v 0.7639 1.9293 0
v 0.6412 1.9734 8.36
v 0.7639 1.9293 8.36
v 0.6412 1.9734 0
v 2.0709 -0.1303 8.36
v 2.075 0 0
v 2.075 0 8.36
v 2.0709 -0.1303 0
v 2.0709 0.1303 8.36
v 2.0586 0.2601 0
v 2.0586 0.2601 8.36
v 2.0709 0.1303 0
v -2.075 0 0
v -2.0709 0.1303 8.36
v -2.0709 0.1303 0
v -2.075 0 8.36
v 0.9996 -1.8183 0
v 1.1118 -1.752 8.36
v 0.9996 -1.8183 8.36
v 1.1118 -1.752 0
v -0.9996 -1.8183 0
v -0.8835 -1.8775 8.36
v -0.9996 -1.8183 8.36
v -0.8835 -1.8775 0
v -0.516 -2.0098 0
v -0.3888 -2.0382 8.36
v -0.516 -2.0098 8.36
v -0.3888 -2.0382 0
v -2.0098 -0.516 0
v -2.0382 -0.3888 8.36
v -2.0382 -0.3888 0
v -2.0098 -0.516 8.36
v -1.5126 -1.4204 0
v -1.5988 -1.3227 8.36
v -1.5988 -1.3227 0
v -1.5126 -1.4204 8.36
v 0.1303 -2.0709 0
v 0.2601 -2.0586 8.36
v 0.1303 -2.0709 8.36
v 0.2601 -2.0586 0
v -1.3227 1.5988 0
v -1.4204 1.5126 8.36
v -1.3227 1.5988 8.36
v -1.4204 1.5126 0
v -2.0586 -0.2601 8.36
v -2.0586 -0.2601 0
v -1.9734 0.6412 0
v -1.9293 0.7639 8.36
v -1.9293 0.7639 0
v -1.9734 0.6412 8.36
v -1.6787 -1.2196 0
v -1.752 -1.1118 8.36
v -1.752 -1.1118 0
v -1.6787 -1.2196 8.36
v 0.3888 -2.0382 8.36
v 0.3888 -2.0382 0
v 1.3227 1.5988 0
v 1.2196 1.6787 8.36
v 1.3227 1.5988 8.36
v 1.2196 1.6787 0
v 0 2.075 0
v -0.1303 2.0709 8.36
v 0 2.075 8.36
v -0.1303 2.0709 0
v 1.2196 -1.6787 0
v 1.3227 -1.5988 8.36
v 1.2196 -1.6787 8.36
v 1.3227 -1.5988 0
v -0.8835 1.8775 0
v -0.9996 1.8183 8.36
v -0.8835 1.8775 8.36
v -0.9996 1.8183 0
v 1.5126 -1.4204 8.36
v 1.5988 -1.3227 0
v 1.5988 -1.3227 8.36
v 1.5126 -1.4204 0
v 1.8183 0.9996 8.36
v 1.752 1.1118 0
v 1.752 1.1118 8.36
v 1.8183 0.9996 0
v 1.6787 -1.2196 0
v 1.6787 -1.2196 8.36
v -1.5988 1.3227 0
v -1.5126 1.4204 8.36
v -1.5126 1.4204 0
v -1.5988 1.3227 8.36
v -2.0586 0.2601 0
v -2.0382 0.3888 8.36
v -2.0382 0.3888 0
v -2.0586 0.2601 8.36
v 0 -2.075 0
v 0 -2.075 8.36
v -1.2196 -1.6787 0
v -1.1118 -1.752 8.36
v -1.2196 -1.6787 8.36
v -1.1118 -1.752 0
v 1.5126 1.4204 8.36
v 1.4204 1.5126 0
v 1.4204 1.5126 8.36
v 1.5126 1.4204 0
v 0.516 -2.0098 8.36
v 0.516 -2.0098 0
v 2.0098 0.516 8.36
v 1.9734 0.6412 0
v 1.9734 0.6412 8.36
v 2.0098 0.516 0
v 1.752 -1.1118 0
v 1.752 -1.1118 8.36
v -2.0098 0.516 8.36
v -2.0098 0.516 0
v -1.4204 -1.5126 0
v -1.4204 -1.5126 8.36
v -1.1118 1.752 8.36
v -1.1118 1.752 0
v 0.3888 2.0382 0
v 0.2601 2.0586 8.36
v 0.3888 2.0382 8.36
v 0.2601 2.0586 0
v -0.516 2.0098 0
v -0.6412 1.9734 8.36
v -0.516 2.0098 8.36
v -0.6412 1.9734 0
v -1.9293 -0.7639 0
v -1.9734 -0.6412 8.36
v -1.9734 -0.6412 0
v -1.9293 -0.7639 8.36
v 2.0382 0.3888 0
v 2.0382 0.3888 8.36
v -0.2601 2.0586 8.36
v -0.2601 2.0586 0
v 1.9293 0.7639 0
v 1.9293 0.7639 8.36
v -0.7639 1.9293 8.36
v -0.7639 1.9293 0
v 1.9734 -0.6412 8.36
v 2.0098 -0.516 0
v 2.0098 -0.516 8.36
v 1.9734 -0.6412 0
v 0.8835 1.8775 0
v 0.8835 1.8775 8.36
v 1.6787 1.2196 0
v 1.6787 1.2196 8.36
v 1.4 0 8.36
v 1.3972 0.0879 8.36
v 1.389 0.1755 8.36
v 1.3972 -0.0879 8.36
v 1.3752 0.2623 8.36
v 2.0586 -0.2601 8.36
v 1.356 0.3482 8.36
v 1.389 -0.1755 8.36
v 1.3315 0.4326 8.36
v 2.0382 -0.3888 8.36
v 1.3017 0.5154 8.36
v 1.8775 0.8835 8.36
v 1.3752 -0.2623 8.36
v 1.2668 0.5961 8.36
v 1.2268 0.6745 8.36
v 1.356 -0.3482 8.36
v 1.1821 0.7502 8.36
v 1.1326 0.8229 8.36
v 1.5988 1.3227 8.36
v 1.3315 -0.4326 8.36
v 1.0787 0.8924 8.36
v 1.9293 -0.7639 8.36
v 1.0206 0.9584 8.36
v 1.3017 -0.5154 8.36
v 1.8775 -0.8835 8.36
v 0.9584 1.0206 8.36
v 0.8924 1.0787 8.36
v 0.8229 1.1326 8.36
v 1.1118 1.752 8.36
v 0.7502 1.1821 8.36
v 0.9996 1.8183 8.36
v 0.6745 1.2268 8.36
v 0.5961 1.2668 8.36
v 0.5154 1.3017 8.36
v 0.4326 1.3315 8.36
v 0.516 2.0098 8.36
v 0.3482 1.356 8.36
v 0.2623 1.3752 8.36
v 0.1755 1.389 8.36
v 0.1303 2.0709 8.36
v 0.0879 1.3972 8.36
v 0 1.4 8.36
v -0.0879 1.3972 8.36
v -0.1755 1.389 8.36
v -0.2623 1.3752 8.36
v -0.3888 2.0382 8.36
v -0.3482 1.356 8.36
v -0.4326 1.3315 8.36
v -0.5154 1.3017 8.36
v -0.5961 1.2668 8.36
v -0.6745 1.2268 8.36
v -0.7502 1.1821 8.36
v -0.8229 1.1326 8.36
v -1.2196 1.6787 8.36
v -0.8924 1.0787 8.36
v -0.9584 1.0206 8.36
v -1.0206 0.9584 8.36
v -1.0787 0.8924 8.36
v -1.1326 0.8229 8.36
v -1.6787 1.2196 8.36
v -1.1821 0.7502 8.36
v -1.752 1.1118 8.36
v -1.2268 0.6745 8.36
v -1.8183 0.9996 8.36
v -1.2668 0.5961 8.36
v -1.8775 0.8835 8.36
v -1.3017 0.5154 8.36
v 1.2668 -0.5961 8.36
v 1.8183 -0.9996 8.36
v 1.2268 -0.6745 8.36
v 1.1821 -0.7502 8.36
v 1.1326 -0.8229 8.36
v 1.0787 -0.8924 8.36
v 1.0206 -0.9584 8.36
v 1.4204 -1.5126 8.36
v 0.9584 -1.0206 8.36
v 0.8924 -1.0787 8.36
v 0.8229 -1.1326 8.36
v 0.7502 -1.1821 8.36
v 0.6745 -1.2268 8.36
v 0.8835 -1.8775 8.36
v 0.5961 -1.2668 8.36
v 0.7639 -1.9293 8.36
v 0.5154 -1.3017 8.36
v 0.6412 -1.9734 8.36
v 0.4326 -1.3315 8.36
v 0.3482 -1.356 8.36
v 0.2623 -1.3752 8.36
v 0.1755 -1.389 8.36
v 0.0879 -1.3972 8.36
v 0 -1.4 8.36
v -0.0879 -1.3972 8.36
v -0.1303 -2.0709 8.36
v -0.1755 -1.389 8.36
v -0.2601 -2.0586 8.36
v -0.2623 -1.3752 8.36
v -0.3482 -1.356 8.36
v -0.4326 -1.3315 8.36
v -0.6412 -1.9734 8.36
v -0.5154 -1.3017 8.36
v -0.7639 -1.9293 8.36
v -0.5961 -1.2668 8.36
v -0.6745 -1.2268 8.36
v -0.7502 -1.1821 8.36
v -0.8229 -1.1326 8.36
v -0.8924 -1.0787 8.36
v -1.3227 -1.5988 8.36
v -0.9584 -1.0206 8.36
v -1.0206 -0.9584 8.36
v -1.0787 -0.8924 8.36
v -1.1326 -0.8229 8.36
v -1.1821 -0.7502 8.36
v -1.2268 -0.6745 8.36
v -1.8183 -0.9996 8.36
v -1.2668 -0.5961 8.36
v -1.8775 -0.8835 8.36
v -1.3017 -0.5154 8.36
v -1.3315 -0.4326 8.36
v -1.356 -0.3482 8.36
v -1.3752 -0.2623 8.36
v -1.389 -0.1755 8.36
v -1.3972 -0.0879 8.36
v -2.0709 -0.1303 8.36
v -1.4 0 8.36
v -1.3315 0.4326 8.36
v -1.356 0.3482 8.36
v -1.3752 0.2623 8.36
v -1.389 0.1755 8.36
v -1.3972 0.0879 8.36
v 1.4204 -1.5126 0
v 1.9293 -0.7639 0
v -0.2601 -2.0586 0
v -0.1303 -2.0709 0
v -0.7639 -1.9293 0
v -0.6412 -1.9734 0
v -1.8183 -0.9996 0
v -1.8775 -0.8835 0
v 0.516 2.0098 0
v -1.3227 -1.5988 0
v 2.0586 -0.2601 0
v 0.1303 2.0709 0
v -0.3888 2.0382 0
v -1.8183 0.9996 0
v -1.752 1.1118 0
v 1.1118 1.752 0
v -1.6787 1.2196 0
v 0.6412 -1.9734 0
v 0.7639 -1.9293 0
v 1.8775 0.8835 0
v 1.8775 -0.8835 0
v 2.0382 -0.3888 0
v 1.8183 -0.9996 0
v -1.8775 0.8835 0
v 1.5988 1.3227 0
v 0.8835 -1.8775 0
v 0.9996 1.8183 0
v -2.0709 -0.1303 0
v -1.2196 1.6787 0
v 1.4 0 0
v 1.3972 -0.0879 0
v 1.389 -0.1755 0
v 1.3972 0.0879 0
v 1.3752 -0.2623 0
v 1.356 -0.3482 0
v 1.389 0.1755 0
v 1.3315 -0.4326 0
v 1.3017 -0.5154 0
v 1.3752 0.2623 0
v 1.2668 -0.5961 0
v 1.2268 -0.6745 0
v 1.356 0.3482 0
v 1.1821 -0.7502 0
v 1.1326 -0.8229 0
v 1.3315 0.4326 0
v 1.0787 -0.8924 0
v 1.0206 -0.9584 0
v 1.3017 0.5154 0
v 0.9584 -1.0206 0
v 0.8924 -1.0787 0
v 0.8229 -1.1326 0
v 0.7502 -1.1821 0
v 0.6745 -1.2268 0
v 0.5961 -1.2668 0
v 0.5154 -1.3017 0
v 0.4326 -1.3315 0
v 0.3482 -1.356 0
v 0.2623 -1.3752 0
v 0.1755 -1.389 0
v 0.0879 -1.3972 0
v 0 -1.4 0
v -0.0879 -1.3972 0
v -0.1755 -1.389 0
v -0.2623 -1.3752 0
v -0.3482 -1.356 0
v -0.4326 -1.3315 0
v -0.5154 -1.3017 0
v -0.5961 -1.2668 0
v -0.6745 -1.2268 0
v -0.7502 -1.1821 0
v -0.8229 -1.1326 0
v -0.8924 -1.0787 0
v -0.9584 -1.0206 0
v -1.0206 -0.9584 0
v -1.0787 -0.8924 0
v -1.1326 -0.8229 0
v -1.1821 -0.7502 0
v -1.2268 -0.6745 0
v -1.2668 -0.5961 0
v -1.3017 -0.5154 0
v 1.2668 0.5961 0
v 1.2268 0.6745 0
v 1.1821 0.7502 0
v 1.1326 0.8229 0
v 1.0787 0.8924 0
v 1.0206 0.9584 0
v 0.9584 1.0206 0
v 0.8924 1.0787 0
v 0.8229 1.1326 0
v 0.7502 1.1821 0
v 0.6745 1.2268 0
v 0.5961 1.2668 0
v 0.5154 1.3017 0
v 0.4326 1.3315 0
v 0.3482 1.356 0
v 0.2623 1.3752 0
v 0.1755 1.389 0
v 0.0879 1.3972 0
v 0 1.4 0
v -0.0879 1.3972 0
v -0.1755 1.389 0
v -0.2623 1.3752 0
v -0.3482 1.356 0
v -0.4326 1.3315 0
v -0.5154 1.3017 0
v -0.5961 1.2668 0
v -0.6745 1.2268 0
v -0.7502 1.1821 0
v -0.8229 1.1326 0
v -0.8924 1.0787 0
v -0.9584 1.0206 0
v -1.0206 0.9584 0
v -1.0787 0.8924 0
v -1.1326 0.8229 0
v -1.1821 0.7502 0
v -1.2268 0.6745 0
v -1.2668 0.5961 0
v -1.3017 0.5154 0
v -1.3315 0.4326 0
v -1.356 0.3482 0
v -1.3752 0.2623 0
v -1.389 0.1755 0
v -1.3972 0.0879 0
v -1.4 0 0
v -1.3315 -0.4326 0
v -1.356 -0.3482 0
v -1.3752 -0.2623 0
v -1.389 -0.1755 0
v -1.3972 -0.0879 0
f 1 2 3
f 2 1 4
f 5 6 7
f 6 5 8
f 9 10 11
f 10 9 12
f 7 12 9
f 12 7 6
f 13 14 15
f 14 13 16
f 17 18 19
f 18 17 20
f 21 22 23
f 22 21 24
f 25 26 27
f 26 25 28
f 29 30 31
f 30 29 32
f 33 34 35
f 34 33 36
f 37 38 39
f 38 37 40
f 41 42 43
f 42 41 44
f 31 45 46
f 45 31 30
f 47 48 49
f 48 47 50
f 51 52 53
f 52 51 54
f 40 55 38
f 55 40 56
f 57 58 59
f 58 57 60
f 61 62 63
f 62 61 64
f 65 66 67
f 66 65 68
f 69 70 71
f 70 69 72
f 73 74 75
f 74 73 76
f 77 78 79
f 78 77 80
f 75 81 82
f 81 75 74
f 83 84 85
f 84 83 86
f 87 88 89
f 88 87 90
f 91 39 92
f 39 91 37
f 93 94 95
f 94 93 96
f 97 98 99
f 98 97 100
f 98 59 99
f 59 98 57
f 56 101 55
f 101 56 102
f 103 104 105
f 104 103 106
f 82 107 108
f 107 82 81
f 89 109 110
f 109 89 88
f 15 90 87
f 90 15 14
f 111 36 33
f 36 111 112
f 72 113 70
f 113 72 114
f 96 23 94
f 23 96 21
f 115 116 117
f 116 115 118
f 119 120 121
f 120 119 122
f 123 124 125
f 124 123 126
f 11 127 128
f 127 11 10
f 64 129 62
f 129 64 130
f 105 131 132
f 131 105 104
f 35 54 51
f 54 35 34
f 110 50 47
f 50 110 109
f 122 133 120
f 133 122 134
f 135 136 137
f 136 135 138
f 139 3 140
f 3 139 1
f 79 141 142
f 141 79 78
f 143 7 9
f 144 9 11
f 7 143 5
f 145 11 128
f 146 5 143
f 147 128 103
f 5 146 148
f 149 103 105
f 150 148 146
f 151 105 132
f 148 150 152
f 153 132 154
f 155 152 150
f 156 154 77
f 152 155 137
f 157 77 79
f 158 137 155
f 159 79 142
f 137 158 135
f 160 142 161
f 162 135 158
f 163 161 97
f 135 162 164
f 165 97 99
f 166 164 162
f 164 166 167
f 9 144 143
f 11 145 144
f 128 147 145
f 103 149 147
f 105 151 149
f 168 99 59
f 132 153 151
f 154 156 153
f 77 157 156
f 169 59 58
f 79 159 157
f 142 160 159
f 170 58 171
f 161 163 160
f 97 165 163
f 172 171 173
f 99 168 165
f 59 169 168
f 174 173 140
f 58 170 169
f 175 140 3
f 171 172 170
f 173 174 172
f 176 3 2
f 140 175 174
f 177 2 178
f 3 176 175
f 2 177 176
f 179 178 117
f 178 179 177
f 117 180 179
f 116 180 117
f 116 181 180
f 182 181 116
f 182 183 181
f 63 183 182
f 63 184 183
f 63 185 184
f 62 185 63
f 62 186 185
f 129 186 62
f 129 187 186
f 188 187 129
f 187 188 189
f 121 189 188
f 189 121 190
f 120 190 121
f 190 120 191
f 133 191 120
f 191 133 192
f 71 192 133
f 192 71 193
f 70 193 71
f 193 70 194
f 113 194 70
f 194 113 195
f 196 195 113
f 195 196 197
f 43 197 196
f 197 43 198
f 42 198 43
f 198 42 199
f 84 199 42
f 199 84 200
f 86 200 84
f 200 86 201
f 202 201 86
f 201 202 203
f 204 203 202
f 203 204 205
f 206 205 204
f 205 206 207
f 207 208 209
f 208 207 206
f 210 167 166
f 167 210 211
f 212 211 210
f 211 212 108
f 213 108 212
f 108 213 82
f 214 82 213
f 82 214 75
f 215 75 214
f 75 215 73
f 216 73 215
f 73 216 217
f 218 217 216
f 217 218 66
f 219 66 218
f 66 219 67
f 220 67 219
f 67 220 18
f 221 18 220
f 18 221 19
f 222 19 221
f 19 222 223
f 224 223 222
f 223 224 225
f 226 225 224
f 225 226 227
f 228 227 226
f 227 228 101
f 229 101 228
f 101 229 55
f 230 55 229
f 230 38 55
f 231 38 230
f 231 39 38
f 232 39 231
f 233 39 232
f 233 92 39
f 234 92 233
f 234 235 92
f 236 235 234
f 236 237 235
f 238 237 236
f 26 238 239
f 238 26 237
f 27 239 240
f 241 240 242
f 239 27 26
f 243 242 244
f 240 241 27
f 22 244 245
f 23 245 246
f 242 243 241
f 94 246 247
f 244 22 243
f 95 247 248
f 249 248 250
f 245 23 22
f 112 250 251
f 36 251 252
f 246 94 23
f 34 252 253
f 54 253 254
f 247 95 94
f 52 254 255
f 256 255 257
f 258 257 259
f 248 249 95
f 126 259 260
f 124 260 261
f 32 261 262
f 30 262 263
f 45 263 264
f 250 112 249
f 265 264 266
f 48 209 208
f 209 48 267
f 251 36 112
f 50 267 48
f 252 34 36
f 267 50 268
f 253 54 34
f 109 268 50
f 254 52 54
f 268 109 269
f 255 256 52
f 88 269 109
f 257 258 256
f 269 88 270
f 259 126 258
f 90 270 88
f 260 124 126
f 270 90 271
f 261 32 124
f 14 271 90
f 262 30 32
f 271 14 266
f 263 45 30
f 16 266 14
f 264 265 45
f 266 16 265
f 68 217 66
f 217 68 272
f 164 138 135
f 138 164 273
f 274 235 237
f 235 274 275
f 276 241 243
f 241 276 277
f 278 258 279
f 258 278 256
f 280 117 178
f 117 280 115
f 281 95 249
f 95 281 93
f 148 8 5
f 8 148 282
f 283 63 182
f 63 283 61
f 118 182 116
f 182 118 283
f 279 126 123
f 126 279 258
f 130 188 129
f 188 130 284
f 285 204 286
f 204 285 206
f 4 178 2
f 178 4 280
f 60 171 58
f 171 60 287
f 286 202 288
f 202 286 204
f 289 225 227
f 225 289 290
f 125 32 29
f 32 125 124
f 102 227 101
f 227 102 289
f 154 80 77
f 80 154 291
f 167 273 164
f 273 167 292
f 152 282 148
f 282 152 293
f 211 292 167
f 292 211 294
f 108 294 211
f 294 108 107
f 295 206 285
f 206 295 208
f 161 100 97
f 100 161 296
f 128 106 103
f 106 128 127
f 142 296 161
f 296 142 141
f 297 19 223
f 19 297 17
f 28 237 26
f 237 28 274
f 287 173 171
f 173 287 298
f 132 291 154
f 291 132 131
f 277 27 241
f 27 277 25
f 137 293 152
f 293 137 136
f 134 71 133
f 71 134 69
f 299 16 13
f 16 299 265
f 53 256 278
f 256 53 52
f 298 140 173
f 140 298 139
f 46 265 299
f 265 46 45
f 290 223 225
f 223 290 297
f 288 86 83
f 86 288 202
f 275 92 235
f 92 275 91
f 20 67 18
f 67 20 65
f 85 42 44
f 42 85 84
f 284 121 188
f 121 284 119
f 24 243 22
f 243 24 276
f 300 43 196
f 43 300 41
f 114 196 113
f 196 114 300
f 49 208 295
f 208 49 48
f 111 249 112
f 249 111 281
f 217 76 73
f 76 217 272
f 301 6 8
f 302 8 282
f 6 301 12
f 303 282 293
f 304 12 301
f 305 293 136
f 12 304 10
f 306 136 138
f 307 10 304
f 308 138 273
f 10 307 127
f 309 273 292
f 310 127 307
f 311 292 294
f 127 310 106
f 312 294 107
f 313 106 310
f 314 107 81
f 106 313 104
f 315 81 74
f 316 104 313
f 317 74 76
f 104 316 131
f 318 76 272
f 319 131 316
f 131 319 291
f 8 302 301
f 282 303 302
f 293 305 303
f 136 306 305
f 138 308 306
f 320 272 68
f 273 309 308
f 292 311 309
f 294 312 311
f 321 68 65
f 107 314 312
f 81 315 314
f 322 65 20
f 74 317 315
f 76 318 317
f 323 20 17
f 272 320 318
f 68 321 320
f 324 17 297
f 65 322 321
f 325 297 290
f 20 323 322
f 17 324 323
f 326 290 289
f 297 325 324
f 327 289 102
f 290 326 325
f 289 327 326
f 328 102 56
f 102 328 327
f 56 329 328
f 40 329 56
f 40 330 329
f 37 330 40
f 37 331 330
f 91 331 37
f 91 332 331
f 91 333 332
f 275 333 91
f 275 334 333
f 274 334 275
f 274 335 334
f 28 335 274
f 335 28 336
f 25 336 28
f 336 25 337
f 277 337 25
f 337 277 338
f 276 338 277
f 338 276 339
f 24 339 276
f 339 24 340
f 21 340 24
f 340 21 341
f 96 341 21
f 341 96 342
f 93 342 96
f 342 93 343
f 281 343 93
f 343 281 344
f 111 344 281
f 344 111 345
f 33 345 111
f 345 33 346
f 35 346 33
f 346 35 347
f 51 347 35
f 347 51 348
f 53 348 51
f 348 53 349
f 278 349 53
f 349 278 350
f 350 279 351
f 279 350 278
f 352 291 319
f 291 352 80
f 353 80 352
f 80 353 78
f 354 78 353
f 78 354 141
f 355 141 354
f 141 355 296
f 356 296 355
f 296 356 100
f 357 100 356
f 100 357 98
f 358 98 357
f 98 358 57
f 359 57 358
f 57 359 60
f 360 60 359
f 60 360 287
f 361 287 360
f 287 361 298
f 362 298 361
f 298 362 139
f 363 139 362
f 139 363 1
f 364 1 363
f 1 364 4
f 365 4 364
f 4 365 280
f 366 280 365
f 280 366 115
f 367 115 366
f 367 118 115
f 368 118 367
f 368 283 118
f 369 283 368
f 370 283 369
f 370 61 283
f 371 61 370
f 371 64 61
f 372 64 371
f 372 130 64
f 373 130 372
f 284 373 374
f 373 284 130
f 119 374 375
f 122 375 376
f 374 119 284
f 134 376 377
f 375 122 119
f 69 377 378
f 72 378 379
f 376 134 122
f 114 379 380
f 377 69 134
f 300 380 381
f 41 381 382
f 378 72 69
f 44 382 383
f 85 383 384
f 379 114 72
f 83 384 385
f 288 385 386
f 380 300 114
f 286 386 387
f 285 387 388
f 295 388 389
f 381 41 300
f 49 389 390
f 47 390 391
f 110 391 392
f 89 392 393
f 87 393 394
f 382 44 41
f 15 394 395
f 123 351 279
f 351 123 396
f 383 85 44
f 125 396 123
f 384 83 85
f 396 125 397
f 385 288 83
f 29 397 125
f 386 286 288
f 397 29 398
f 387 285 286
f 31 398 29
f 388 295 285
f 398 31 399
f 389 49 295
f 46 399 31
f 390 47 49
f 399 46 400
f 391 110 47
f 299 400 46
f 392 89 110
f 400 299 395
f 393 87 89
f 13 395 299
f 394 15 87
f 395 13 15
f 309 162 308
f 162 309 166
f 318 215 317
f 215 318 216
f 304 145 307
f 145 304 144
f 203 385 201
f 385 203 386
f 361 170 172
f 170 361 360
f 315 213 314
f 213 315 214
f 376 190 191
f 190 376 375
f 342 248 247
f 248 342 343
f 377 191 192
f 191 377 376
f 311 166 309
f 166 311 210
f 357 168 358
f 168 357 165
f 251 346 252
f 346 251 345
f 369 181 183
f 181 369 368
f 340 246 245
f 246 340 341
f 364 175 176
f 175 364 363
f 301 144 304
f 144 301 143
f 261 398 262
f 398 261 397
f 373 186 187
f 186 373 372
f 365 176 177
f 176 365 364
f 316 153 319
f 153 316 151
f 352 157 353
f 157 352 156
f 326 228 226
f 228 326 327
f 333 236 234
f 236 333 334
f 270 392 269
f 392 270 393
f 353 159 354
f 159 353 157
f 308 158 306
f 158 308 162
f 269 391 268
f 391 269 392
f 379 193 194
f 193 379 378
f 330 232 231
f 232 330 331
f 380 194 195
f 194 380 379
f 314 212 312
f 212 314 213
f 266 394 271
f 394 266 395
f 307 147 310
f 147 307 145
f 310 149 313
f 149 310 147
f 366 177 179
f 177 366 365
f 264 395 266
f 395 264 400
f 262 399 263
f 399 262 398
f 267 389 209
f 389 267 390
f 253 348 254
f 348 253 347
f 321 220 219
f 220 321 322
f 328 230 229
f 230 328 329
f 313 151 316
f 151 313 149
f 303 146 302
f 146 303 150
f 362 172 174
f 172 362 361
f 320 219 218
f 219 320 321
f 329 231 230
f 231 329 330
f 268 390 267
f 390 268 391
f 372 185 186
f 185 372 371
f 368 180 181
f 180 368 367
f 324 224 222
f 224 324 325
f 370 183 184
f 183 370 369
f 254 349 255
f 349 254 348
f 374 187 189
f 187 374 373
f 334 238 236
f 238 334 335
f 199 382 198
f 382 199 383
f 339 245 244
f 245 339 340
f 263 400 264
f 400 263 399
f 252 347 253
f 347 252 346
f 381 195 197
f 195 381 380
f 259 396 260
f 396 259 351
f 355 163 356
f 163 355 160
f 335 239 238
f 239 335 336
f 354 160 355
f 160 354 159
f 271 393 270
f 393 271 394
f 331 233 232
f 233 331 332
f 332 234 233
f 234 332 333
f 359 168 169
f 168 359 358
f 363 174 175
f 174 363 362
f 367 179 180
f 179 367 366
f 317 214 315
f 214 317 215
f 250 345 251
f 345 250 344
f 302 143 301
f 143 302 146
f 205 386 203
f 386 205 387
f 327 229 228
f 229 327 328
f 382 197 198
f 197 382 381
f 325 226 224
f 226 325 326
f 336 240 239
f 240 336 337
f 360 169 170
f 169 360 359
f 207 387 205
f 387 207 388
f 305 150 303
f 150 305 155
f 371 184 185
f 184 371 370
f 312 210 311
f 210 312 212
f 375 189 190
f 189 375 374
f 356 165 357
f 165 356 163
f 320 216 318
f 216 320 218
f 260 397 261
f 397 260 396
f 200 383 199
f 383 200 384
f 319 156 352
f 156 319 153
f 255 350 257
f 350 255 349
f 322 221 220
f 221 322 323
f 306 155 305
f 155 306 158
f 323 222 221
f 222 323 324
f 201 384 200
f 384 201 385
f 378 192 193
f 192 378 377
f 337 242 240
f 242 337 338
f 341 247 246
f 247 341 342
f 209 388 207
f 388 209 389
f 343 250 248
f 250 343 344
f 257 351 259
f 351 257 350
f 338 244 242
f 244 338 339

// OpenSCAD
// Spacer Model Parameters
// M3 thread hole size (slightly smaller for hand threading)
m3_hole = 2.8;

length = 8.36;      // Length of spacer in mm
outer_d = 4.15;     // Outer diameter in mm
inner_d = m3_hole;  // Inner diameter in mm
smoothness = 100;   // High smoothness factor for cylinder faces

// Main heatsink spacer body
difference() {
  // Outer cylinder
  cylinder(
    h = length,
    d = outer_d,
    $fn = smoothness
  );

  // Inner hole (subtracted from outer cylinder)
  cylinder(
    h = length,
    d = inner_d,
    $fn = smoothness
  );
}
